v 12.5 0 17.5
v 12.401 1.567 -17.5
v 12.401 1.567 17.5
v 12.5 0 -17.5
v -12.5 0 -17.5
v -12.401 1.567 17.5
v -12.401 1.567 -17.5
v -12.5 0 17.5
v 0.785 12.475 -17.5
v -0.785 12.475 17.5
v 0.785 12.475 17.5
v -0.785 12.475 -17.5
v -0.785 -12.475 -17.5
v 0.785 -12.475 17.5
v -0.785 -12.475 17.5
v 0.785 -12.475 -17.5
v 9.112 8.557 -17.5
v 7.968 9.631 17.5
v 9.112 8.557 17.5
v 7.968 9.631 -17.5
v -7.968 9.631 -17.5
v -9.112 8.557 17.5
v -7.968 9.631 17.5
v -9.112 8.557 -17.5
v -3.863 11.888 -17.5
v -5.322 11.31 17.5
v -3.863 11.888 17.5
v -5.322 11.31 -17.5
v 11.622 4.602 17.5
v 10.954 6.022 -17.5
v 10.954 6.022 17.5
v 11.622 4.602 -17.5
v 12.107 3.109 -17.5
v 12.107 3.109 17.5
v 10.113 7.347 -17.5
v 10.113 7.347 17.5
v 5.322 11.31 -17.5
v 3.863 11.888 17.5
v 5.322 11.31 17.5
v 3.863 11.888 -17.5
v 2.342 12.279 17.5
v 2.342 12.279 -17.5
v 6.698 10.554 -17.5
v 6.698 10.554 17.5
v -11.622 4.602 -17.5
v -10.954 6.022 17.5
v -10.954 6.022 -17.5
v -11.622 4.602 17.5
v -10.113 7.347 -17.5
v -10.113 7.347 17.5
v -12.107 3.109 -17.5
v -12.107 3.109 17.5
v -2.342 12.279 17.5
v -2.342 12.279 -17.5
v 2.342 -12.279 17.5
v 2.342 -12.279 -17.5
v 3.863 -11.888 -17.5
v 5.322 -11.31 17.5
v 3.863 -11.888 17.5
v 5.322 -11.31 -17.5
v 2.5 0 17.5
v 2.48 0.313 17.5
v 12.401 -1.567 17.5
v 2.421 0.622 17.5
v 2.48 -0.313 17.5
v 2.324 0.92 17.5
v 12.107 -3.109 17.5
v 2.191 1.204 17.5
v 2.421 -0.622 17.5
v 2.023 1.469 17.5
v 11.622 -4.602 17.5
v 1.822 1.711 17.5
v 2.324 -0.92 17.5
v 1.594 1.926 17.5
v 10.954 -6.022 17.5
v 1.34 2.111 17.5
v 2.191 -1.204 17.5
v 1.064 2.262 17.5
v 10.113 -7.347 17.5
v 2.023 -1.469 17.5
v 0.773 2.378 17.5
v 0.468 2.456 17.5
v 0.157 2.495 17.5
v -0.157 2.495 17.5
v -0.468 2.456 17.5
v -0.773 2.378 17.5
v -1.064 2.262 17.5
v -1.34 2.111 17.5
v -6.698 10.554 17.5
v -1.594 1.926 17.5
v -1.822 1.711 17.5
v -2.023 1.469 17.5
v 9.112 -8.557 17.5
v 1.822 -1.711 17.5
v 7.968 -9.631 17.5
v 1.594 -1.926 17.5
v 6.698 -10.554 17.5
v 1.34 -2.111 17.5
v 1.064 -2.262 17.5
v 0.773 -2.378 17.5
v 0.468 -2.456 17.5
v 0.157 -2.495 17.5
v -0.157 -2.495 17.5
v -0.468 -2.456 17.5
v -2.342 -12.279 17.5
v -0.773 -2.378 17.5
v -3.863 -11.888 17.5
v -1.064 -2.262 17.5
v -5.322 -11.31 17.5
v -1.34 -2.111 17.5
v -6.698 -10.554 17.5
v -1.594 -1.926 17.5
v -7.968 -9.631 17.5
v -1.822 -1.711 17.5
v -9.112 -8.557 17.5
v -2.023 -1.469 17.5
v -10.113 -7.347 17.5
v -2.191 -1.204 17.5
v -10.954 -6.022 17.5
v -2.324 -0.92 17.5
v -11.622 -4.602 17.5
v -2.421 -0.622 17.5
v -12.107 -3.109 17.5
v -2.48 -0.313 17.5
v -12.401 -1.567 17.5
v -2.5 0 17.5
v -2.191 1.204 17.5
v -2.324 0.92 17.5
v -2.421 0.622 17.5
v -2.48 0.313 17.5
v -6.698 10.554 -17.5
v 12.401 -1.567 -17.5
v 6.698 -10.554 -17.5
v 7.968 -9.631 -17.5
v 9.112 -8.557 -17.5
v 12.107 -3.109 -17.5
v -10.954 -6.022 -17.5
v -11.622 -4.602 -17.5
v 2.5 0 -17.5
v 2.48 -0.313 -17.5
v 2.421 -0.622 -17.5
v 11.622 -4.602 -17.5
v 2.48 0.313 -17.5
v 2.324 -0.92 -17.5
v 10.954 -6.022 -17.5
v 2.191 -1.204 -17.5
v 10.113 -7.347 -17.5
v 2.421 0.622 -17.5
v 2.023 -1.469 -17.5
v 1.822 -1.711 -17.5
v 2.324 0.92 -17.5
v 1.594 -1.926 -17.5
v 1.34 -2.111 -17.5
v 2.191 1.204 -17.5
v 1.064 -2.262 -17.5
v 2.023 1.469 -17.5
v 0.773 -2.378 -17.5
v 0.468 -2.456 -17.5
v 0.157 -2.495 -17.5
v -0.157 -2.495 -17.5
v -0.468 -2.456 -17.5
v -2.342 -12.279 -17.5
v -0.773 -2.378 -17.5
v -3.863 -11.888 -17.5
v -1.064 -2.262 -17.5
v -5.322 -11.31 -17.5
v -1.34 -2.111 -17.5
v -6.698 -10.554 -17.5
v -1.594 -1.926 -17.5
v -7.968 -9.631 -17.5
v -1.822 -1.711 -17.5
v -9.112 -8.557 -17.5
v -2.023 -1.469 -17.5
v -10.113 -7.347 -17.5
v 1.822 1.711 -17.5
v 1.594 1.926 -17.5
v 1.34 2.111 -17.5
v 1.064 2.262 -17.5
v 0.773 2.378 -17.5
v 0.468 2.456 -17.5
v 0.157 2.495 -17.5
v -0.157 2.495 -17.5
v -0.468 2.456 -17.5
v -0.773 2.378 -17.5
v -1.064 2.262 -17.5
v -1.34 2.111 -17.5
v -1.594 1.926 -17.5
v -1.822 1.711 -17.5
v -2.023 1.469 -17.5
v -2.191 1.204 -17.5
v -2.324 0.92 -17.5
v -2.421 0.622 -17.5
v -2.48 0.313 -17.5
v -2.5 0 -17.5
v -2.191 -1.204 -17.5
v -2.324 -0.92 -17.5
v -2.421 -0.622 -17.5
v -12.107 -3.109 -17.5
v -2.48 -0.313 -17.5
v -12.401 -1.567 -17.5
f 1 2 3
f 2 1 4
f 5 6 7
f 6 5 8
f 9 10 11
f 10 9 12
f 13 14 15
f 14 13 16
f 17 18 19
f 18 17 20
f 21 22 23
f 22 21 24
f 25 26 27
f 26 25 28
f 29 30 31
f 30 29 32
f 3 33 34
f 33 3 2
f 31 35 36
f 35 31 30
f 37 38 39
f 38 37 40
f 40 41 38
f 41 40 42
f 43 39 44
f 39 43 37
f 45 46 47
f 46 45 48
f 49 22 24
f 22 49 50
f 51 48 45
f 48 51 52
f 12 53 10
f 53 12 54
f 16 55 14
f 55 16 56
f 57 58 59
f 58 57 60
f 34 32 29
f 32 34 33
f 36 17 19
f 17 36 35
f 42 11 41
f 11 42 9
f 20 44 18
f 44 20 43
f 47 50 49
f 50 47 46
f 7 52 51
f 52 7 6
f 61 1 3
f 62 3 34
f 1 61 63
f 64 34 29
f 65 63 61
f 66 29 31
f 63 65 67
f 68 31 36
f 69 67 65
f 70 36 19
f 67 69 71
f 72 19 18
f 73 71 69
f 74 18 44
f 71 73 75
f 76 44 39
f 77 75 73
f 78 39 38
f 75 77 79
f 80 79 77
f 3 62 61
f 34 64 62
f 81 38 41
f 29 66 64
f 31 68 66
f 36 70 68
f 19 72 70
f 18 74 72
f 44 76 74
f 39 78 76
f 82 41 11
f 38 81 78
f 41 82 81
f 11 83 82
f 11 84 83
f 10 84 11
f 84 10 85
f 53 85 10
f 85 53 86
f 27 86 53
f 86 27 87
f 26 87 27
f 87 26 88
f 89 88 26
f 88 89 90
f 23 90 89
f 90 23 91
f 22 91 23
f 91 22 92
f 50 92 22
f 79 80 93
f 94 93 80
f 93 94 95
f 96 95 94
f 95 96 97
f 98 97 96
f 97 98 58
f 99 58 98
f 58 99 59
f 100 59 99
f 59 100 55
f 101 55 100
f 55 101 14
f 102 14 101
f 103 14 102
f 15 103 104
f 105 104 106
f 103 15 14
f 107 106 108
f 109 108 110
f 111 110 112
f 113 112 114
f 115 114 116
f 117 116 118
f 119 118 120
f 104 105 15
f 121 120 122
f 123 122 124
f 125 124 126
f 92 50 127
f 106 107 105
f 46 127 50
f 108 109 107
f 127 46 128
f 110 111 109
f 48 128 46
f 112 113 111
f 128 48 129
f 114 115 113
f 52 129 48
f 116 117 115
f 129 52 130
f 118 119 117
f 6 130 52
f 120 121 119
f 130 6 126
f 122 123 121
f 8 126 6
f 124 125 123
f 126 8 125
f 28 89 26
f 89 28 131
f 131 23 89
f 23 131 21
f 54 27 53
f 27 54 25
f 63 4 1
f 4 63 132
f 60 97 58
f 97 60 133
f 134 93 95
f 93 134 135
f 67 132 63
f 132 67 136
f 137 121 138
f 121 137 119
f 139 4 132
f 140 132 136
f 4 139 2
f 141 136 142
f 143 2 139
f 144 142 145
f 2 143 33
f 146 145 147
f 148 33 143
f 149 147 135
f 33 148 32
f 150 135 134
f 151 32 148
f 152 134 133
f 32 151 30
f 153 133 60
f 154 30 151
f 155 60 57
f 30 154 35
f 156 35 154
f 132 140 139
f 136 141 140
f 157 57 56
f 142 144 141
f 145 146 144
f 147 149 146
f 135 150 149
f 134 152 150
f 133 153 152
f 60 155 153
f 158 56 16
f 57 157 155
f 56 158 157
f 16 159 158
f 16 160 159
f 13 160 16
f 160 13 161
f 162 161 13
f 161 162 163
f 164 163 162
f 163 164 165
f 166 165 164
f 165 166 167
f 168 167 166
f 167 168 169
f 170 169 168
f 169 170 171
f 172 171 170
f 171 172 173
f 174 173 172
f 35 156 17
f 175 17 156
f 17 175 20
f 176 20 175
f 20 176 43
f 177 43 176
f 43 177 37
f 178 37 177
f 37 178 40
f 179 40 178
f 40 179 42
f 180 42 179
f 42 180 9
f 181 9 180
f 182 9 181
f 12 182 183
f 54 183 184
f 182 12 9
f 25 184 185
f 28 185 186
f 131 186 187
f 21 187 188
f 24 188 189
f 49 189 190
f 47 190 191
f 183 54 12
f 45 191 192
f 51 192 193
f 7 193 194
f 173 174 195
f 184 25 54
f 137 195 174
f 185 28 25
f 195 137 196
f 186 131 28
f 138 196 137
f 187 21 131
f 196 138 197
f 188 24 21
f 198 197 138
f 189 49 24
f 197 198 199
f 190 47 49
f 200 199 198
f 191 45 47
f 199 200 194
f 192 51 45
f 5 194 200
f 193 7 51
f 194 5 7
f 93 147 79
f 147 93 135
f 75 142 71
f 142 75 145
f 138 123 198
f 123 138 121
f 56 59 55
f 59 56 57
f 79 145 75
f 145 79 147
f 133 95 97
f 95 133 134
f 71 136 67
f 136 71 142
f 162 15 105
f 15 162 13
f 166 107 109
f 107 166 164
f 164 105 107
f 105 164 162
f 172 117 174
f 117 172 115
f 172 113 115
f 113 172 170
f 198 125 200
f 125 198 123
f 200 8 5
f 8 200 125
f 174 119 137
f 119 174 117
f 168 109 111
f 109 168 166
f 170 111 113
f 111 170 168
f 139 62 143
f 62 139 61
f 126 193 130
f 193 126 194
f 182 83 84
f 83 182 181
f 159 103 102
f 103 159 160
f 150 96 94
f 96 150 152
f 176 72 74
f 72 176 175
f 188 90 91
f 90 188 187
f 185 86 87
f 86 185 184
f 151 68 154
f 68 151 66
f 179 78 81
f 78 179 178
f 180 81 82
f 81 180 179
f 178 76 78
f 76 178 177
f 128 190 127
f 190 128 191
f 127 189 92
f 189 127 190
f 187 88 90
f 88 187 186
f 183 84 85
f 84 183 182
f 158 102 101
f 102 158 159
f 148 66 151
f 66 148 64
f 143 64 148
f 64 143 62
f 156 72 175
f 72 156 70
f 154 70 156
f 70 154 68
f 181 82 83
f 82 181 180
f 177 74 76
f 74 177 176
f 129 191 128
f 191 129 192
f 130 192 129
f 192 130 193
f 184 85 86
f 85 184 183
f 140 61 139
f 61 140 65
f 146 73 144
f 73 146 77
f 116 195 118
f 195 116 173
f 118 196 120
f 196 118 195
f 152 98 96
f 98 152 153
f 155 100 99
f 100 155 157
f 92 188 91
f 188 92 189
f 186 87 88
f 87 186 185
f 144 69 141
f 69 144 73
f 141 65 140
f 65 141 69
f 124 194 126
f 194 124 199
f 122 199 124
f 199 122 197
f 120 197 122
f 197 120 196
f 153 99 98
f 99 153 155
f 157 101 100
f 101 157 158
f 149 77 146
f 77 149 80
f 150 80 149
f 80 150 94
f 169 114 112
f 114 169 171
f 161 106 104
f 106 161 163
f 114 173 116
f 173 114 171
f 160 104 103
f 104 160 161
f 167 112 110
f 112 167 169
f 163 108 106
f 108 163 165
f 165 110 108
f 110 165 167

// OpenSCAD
$fn = 50;


difference() {
	union() {
		translate(v = [0, 0, -17.5000000000]) {
			cylinder(h = 35, r = 12.5000000000);
		}
	}
	union() {
		translate(v = [0, 0, -100.0000000000]) {
			cylinder(h = 200, r = 2.5000000000);
		}
	}
}
